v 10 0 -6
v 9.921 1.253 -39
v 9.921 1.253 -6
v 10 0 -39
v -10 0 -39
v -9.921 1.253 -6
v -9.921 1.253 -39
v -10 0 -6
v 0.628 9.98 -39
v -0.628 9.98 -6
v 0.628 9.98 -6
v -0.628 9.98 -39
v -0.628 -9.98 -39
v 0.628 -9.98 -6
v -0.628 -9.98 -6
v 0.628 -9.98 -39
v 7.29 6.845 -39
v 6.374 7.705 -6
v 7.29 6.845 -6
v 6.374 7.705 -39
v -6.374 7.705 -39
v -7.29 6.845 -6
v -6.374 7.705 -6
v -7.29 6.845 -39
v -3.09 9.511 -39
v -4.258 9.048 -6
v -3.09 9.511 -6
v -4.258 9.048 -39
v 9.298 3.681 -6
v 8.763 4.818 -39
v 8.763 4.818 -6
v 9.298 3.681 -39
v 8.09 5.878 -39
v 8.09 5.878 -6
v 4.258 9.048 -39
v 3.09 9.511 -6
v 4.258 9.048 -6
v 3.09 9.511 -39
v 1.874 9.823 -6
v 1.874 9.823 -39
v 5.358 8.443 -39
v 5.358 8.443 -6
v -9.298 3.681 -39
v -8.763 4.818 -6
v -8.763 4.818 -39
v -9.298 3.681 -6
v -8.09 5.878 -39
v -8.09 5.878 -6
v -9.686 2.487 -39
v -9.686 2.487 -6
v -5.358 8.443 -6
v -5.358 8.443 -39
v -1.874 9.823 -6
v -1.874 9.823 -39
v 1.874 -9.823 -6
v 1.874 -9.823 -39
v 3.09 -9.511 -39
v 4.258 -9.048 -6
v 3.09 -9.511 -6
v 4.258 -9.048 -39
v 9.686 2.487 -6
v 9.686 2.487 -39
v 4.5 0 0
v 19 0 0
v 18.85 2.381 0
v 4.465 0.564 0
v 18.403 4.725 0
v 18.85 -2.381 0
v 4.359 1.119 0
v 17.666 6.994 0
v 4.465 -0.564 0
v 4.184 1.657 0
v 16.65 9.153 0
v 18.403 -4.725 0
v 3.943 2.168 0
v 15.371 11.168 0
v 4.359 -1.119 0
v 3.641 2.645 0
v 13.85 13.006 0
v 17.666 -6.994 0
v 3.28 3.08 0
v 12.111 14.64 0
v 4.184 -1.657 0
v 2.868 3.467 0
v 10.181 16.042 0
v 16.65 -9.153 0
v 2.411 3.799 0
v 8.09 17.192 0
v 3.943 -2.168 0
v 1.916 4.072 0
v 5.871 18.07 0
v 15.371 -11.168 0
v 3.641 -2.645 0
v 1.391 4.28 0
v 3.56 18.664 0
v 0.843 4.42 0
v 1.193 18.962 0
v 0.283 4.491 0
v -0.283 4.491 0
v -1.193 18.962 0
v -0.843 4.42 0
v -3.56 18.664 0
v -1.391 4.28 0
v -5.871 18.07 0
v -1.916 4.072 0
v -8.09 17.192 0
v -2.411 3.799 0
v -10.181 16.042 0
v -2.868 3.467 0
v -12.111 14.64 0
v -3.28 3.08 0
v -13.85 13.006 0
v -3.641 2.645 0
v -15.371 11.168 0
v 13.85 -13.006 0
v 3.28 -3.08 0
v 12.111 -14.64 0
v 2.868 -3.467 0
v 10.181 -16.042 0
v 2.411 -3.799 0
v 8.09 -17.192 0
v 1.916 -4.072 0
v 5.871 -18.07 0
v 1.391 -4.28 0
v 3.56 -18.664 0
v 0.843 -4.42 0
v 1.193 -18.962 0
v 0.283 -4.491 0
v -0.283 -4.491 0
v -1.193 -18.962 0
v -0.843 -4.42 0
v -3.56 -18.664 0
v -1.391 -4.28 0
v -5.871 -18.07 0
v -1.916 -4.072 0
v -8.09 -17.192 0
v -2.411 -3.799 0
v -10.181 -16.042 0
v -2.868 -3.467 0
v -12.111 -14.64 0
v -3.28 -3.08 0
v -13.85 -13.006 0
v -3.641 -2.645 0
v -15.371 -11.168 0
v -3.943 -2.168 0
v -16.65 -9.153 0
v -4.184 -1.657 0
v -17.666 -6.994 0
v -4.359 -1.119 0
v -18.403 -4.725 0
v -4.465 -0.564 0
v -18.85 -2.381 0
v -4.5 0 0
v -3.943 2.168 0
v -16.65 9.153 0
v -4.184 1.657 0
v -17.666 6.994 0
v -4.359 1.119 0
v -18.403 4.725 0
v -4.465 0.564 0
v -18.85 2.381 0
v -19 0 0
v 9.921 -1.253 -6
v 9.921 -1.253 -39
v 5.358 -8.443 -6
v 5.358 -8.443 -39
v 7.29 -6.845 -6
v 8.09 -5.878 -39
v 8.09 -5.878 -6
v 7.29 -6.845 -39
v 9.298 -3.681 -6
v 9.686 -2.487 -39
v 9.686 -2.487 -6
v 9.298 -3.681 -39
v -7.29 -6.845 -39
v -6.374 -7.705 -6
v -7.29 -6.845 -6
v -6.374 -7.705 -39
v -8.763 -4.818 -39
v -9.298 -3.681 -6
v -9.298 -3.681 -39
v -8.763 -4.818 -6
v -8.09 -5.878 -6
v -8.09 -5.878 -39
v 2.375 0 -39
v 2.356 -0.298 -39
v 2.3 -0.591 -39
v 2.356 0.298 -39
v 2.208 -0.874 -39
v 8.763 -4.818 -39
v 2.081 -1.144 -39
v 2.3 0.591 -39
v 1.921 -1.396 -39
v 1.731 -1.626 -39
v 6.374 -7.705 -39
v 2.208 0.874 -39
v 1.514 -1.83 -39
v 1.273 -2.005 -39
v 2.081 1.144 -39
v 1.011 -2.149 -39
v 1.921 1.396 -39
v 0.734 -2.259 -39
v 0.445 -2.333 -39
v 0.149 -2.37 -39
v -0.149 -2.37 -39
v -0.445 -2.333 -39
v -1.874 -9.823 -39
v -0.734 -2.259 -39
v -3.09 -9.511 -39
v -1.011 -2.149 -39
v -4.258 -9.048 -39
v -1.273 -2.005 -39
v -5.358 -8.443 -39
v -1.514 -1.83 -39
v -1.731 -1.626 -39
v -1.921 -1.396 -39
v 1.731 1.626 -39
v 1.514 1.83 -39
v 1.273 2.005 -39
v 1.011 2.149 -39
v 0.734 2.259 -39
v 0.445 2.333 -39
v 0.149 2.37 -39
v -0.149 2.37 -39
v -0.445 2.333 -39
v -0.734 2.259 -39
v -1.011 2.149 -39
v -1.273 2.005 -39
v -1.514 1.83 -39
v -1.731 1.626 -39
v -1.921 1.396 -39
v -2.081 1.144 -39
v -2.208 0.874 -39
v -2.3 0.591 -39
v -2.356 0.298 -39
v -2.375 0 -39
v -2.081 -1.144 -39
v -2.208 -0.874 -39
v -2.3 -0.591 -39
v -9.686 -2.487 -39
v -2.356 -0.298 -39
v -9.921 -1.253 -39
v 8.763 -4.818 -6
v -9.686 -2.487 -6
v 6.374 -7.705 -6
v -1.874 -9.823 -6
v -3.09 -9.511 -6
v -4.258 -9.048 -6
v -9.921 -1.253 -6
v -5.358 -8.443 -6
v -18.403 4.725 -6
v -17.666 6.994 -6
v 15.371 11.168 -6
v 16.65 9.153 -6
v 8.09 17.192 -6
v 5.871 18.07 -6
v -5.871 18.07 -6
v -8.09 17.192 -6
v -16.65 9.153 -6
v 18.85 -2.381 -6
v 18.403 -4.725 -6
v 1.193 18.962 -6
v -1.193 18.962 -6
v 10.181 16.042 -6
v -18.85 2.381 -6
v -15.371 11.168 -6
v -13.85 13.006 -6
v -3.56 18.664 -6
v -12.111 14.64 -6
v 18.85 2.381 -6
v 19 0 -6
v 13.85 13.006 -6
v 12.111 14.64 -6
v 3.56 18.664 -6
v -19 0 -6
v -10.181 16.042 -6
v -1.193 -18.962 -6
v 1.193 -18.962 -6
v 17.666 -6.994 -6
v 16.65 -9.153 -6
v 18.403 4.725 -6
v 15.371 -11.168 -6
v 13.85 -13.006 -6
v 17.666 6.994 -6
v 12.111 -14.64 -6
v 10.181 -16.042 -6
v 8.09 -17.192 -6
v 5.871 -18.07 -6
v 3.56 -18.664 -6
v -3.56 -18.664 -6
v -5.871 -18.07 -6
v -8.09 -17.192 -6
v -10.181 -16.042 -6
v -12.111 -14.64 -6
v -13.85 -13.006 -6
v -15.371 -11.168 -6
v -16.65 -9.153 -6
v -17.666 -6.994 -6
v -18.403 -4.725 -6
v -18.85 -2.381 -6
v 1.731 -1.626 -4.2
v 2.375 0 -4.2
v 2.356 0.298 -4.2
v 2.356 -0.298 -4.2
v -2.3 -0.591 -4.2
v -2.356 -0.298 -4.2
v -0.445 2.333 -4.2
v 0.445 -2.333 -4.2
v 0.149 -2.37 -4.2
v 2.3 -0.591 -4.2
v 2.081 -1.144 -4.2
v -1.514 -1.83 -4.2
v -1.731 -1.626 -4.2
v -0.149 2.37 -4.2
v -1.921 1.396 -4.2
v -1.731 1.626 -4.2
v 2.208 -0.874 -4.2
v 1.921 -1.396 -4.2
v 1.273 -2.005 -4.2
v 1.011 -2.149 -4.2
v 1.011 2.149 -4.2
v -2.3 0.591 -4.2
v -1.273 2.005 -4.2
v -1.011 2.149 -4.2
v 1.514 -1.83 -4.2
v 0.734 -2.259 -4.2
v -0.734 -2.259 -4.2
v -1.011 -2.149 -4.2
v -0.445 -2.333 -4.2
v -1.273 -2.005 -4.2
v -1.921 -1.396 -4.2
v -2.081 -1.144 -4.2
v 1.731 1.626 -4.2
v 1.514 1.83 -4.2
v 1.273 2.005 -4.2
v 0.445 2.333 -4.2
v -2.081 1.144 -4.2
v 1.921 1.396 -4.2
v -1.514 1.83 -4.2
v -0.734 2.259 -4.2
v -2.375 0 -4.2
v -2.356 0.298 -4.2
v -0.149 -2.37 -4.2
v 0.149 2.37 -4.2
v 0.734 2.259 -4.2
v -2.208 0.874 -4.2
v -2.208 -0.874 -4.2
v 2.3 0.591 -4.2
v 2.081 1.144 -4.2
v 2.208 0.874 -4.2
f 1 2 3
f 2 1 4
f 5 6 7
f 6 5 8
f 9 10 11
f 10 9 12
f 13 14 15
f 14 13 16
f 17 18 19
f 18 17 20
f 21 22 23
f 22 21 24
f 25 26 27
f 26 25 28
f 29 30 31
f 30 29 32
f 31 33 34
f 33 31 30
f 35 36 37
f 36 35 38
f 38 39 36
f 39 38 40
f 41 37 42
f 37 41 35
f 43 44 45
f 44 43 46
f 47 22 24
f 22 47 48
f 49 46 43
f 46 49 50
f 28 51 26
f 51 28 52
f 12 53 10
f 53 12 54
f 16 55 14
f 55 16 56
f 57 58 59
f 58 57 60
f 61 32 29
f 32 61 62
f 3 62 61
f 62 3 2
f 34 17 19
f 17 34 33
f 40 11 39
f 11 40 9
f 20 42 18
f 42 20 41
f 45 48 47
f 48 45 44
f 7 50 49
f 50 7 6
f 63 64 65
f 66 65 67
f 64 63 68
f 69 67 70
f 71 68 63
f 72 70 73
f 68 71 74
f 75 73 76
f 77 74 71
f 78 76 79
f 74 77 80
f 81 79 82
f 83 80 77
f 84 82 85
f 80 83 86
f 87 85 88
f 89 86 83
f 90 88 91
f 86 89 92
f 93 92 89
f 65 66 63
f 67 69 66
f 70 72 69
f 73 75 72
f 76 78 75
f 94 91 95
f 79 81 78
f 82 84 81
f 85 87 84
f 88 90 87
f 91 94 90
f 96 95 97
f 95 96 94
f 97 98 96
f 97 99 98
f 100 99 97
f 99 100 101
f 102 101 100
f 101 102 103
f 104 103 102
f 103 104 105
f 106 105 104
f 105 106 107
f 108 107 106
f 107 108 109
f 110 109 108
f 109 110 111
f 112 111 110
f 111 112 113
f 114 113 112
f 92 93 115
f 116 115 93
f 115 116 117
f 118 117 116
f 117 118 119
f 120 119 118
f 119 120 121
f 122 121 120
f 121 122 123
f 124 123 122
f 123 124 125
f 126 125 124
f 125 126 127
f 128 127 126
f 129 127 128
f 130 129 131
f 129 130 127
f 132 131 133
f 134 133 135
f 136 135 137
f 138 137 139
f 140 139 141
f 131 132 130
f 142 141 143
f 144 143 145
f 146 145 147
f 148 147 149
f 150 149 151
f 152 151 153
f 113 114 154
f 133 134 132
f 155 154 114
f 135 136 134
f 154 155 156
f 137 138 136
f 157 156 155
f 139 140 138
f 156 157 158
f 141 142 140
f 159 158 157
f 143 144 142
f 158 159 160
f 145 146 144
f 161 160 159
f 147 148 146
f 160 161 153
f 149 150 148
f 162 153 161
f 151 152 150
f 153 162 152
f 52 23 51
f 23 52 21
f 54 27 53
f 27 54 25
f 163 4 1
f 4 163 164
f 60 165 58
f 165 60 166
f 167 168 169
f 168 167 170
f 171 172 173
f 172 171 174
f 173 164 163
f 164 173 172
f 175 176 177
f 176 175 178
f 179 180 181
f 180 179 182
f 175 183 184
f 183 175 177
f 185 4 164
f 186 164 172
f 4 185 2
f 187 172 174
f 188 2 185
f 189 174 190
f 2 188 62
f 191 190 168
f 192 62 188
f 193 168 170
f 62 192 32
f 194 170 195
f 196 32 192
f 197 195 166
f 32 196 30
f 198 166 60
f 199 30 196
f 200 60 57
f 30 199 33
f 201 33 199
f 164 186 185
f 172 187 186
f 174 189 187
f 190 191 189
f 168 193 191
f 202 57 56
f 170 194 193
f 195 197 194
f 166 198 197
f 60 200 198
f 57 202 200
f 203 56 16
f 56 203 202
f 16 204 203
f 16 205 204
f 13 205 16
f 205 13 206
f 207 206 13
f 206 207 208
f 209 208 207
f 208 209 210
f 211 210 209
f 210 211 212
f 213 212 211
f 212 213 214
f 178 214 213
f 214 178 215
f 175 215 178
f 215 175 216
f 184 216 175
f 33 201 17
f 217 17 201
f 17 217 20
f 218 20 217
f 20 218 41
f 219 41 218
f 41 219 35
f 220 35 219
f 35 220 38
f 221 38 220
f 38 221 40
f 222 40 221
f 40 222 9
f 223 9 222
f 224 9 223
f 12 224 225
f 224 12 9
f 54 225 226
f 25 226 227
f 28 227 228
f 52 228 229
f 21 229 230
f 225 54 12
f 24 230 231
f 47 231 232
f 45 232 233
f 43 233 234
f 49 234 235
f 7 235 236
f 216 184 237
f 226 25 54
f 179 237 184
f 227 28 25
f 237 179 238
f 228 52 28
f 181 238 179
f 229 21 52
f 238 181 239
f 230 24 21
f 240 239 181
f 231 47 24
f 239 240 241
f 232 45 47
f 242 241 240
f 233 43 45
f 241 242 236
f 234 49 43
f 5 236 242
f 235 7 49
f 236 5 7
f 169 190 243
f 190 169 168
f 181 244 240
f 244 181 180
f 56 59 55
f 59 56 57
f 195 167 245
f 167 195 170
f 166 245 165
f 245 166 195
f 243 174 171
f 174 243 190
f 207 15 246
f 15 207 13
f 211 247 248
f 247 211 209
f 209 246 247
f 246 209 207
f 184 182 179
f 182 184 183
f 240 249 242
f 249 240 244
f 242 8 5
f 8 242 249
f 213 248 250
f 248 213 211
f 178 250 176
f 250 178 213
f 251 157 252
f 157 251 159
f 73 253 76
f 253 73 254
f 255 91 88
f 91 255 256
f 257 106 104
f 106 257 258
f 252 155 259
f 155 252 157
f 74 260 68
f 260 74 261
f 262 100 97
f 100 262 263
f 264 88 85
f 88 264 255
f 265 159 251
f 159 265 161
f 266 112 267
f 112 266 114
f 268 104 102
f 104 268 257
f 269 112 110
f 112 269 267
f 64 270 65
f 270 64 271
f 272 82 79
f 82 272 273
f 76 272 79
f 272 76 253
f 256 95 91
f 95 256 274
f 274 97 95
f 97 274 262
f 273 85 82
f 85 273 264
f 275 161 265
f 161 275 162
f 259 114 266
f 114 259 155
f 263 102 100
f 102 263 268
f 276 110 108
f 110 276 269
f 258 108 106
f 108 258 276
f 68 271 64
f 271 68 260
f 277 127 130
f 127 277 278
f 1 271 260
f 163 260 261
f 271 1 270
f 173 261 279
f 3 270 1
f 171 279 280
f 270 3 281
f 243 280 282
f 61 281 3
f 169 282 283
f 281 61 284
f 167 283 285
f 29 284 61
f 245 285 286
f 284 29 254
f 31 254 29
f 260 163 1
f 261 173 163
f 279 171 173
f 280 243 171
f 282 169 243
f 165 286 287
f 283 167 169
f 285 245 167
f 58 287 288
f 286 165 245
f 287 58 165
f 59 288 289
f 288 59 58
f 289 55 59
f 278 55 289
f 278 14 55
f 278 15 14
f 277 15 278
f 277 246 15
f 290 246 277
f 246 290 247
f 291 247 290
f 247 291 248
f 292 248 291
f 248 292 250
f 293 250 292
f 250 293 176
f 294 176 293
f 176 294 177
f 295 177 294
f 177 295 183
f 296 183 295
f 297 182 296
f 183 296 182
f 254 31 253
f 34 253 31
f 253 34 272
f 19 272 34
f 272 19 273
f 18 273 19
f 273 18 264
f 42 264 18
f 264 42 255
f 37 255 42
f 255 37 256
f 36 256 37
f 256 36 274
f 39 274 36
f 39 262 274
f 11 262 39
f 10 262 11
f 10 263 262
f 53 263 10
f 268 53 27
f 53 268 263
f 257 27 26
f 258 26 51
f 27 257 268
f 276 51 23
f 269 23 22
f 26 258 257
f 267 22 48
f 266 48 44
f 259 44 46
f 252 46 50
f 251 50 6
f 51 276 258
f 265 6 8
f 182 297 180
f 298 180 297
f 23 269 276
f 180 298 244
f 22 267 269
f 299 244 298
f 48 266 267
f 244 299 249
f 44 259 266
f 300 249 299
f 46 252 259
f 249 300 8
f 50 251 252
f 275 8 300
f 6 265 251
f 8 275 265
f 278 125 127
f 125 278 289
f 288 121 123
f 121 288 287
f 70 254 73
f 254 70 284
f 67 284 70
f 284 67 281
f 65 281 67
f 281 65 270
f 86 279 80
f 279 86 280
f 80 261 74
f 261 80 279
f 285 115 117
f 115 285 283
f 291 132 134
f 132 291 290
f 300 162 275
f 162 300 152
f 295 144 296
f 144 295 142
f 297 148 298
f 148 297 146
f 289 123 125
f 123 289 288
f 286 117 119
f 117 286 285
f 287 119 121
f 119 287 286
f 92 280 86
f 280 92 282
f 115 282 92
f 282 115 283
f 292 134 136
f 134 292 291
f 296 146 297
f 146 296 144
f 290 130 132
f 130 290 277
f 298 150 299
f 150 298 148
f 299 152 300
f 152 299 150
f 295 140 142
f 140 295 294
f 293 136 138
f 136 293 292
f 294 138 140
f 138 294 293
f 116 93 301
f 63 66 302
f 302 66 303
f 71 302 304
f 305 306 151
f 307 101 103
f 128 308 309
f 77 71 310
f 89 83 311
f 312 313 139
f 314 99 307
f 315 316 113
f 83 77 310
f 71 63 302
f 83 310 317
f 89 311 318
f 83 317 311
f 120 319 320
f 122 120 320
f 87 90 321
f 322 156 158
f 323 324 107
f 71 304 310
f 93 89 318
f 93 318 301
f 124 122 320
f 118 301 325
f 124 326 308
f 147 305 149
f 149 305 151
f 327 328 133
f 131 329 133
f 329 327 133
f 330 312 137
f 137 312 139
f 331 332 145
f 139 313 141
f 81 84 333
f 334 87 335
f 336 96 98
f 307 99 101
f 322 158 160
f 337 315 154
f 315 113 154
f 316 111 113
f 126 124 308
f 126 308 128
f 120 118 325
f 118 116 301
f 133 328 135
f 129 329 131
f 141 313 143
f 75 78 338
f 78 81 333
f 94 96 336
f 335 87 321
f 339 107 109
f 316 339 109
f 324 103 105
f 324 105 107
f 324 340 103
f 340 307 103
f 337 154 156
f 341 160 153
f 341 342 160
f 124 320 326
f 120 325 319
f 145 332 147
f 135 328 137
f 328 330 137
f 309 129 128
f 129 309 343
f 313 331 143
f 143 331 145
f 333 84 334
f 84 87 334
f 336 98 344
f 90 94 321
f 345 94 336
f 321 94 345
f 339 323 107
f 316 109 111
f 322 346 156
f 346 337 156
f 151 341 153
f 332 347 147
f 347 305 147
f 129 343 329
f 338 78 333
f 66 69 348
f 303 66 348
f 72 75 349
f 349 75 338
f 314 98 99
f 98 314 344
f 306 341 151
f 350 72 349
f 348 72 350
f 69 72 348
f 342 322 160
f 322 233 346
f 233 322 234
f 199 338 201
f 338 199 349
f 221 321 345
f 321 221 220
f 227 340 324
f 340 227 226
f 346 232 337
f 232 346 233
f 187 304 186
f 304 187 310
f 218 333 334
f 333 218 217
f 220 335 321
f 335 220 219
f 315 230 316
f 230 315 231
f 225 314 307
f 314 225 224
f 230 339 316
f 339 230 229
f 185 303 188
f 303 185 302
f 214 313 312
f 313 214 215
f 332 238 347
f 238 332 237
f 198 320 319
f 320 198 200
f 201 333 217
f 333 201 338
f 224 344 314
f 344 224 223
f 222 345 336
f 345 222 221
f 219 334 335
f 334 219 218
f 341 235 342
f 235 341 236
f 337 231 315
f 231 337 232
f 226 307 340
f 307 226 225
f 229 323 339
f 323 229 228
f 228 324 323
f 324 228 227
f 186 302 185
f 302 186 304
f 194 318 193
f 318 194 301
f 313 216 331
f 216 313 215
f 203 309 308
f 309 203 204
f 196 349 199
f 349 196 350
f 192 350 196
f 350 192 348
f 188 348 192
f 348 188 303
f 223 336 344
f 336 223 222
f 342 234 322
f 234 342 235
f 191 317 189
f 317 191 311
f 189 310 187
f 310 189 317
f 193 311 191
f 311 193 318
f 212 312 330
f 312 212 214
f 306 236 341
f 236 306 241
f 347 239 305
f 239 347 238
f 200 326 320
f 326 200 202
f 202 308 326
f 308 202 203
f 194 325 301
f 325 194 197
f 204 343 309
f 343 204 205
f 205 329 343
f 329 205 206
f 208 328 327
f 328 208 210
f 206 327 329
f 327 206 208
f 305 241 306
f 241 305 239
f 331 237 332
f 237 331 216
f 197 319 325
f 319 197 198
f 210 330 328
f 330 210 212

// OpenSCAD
$fn = 50;


difference() {
	union() {
		translate(v = [0, 0, -39.0000000000]) {
			cylinder(h = 39, r = 10.0000000000);
		}
		translate(v = [0, 0, -6.0000000000]) {
			cylinder(h = 6, r = 19.0000000000);
		}
	}
	union() {
		translate(v = [0, 0, 0]) {
			rotate(a = [0, 0, 0]) {
				difference() {
					union() {
						#translate(v = [0, 0, -39.0000000000]) {
							cylinder(h = 39, r = 2.2500000000);
						}
						#translate(v = [0, 0, -4.2000000000]) {
							cylinder(h = 4.2000000000, r = 10.0000000000, r1 = 2.3750000000, r2 = 4.5000000000);
						}
						#translate(v = [0, 0, -39.0000000000]) {
							cylinder(h = 39, r = 2.3750000000);
						}
						#translate(v = [0, 0, -39.0000000000]) {
							cylinder(h = 39, r = 2.2500000000);
						}
					}
					union();
				}
			}
		}
	}
}
